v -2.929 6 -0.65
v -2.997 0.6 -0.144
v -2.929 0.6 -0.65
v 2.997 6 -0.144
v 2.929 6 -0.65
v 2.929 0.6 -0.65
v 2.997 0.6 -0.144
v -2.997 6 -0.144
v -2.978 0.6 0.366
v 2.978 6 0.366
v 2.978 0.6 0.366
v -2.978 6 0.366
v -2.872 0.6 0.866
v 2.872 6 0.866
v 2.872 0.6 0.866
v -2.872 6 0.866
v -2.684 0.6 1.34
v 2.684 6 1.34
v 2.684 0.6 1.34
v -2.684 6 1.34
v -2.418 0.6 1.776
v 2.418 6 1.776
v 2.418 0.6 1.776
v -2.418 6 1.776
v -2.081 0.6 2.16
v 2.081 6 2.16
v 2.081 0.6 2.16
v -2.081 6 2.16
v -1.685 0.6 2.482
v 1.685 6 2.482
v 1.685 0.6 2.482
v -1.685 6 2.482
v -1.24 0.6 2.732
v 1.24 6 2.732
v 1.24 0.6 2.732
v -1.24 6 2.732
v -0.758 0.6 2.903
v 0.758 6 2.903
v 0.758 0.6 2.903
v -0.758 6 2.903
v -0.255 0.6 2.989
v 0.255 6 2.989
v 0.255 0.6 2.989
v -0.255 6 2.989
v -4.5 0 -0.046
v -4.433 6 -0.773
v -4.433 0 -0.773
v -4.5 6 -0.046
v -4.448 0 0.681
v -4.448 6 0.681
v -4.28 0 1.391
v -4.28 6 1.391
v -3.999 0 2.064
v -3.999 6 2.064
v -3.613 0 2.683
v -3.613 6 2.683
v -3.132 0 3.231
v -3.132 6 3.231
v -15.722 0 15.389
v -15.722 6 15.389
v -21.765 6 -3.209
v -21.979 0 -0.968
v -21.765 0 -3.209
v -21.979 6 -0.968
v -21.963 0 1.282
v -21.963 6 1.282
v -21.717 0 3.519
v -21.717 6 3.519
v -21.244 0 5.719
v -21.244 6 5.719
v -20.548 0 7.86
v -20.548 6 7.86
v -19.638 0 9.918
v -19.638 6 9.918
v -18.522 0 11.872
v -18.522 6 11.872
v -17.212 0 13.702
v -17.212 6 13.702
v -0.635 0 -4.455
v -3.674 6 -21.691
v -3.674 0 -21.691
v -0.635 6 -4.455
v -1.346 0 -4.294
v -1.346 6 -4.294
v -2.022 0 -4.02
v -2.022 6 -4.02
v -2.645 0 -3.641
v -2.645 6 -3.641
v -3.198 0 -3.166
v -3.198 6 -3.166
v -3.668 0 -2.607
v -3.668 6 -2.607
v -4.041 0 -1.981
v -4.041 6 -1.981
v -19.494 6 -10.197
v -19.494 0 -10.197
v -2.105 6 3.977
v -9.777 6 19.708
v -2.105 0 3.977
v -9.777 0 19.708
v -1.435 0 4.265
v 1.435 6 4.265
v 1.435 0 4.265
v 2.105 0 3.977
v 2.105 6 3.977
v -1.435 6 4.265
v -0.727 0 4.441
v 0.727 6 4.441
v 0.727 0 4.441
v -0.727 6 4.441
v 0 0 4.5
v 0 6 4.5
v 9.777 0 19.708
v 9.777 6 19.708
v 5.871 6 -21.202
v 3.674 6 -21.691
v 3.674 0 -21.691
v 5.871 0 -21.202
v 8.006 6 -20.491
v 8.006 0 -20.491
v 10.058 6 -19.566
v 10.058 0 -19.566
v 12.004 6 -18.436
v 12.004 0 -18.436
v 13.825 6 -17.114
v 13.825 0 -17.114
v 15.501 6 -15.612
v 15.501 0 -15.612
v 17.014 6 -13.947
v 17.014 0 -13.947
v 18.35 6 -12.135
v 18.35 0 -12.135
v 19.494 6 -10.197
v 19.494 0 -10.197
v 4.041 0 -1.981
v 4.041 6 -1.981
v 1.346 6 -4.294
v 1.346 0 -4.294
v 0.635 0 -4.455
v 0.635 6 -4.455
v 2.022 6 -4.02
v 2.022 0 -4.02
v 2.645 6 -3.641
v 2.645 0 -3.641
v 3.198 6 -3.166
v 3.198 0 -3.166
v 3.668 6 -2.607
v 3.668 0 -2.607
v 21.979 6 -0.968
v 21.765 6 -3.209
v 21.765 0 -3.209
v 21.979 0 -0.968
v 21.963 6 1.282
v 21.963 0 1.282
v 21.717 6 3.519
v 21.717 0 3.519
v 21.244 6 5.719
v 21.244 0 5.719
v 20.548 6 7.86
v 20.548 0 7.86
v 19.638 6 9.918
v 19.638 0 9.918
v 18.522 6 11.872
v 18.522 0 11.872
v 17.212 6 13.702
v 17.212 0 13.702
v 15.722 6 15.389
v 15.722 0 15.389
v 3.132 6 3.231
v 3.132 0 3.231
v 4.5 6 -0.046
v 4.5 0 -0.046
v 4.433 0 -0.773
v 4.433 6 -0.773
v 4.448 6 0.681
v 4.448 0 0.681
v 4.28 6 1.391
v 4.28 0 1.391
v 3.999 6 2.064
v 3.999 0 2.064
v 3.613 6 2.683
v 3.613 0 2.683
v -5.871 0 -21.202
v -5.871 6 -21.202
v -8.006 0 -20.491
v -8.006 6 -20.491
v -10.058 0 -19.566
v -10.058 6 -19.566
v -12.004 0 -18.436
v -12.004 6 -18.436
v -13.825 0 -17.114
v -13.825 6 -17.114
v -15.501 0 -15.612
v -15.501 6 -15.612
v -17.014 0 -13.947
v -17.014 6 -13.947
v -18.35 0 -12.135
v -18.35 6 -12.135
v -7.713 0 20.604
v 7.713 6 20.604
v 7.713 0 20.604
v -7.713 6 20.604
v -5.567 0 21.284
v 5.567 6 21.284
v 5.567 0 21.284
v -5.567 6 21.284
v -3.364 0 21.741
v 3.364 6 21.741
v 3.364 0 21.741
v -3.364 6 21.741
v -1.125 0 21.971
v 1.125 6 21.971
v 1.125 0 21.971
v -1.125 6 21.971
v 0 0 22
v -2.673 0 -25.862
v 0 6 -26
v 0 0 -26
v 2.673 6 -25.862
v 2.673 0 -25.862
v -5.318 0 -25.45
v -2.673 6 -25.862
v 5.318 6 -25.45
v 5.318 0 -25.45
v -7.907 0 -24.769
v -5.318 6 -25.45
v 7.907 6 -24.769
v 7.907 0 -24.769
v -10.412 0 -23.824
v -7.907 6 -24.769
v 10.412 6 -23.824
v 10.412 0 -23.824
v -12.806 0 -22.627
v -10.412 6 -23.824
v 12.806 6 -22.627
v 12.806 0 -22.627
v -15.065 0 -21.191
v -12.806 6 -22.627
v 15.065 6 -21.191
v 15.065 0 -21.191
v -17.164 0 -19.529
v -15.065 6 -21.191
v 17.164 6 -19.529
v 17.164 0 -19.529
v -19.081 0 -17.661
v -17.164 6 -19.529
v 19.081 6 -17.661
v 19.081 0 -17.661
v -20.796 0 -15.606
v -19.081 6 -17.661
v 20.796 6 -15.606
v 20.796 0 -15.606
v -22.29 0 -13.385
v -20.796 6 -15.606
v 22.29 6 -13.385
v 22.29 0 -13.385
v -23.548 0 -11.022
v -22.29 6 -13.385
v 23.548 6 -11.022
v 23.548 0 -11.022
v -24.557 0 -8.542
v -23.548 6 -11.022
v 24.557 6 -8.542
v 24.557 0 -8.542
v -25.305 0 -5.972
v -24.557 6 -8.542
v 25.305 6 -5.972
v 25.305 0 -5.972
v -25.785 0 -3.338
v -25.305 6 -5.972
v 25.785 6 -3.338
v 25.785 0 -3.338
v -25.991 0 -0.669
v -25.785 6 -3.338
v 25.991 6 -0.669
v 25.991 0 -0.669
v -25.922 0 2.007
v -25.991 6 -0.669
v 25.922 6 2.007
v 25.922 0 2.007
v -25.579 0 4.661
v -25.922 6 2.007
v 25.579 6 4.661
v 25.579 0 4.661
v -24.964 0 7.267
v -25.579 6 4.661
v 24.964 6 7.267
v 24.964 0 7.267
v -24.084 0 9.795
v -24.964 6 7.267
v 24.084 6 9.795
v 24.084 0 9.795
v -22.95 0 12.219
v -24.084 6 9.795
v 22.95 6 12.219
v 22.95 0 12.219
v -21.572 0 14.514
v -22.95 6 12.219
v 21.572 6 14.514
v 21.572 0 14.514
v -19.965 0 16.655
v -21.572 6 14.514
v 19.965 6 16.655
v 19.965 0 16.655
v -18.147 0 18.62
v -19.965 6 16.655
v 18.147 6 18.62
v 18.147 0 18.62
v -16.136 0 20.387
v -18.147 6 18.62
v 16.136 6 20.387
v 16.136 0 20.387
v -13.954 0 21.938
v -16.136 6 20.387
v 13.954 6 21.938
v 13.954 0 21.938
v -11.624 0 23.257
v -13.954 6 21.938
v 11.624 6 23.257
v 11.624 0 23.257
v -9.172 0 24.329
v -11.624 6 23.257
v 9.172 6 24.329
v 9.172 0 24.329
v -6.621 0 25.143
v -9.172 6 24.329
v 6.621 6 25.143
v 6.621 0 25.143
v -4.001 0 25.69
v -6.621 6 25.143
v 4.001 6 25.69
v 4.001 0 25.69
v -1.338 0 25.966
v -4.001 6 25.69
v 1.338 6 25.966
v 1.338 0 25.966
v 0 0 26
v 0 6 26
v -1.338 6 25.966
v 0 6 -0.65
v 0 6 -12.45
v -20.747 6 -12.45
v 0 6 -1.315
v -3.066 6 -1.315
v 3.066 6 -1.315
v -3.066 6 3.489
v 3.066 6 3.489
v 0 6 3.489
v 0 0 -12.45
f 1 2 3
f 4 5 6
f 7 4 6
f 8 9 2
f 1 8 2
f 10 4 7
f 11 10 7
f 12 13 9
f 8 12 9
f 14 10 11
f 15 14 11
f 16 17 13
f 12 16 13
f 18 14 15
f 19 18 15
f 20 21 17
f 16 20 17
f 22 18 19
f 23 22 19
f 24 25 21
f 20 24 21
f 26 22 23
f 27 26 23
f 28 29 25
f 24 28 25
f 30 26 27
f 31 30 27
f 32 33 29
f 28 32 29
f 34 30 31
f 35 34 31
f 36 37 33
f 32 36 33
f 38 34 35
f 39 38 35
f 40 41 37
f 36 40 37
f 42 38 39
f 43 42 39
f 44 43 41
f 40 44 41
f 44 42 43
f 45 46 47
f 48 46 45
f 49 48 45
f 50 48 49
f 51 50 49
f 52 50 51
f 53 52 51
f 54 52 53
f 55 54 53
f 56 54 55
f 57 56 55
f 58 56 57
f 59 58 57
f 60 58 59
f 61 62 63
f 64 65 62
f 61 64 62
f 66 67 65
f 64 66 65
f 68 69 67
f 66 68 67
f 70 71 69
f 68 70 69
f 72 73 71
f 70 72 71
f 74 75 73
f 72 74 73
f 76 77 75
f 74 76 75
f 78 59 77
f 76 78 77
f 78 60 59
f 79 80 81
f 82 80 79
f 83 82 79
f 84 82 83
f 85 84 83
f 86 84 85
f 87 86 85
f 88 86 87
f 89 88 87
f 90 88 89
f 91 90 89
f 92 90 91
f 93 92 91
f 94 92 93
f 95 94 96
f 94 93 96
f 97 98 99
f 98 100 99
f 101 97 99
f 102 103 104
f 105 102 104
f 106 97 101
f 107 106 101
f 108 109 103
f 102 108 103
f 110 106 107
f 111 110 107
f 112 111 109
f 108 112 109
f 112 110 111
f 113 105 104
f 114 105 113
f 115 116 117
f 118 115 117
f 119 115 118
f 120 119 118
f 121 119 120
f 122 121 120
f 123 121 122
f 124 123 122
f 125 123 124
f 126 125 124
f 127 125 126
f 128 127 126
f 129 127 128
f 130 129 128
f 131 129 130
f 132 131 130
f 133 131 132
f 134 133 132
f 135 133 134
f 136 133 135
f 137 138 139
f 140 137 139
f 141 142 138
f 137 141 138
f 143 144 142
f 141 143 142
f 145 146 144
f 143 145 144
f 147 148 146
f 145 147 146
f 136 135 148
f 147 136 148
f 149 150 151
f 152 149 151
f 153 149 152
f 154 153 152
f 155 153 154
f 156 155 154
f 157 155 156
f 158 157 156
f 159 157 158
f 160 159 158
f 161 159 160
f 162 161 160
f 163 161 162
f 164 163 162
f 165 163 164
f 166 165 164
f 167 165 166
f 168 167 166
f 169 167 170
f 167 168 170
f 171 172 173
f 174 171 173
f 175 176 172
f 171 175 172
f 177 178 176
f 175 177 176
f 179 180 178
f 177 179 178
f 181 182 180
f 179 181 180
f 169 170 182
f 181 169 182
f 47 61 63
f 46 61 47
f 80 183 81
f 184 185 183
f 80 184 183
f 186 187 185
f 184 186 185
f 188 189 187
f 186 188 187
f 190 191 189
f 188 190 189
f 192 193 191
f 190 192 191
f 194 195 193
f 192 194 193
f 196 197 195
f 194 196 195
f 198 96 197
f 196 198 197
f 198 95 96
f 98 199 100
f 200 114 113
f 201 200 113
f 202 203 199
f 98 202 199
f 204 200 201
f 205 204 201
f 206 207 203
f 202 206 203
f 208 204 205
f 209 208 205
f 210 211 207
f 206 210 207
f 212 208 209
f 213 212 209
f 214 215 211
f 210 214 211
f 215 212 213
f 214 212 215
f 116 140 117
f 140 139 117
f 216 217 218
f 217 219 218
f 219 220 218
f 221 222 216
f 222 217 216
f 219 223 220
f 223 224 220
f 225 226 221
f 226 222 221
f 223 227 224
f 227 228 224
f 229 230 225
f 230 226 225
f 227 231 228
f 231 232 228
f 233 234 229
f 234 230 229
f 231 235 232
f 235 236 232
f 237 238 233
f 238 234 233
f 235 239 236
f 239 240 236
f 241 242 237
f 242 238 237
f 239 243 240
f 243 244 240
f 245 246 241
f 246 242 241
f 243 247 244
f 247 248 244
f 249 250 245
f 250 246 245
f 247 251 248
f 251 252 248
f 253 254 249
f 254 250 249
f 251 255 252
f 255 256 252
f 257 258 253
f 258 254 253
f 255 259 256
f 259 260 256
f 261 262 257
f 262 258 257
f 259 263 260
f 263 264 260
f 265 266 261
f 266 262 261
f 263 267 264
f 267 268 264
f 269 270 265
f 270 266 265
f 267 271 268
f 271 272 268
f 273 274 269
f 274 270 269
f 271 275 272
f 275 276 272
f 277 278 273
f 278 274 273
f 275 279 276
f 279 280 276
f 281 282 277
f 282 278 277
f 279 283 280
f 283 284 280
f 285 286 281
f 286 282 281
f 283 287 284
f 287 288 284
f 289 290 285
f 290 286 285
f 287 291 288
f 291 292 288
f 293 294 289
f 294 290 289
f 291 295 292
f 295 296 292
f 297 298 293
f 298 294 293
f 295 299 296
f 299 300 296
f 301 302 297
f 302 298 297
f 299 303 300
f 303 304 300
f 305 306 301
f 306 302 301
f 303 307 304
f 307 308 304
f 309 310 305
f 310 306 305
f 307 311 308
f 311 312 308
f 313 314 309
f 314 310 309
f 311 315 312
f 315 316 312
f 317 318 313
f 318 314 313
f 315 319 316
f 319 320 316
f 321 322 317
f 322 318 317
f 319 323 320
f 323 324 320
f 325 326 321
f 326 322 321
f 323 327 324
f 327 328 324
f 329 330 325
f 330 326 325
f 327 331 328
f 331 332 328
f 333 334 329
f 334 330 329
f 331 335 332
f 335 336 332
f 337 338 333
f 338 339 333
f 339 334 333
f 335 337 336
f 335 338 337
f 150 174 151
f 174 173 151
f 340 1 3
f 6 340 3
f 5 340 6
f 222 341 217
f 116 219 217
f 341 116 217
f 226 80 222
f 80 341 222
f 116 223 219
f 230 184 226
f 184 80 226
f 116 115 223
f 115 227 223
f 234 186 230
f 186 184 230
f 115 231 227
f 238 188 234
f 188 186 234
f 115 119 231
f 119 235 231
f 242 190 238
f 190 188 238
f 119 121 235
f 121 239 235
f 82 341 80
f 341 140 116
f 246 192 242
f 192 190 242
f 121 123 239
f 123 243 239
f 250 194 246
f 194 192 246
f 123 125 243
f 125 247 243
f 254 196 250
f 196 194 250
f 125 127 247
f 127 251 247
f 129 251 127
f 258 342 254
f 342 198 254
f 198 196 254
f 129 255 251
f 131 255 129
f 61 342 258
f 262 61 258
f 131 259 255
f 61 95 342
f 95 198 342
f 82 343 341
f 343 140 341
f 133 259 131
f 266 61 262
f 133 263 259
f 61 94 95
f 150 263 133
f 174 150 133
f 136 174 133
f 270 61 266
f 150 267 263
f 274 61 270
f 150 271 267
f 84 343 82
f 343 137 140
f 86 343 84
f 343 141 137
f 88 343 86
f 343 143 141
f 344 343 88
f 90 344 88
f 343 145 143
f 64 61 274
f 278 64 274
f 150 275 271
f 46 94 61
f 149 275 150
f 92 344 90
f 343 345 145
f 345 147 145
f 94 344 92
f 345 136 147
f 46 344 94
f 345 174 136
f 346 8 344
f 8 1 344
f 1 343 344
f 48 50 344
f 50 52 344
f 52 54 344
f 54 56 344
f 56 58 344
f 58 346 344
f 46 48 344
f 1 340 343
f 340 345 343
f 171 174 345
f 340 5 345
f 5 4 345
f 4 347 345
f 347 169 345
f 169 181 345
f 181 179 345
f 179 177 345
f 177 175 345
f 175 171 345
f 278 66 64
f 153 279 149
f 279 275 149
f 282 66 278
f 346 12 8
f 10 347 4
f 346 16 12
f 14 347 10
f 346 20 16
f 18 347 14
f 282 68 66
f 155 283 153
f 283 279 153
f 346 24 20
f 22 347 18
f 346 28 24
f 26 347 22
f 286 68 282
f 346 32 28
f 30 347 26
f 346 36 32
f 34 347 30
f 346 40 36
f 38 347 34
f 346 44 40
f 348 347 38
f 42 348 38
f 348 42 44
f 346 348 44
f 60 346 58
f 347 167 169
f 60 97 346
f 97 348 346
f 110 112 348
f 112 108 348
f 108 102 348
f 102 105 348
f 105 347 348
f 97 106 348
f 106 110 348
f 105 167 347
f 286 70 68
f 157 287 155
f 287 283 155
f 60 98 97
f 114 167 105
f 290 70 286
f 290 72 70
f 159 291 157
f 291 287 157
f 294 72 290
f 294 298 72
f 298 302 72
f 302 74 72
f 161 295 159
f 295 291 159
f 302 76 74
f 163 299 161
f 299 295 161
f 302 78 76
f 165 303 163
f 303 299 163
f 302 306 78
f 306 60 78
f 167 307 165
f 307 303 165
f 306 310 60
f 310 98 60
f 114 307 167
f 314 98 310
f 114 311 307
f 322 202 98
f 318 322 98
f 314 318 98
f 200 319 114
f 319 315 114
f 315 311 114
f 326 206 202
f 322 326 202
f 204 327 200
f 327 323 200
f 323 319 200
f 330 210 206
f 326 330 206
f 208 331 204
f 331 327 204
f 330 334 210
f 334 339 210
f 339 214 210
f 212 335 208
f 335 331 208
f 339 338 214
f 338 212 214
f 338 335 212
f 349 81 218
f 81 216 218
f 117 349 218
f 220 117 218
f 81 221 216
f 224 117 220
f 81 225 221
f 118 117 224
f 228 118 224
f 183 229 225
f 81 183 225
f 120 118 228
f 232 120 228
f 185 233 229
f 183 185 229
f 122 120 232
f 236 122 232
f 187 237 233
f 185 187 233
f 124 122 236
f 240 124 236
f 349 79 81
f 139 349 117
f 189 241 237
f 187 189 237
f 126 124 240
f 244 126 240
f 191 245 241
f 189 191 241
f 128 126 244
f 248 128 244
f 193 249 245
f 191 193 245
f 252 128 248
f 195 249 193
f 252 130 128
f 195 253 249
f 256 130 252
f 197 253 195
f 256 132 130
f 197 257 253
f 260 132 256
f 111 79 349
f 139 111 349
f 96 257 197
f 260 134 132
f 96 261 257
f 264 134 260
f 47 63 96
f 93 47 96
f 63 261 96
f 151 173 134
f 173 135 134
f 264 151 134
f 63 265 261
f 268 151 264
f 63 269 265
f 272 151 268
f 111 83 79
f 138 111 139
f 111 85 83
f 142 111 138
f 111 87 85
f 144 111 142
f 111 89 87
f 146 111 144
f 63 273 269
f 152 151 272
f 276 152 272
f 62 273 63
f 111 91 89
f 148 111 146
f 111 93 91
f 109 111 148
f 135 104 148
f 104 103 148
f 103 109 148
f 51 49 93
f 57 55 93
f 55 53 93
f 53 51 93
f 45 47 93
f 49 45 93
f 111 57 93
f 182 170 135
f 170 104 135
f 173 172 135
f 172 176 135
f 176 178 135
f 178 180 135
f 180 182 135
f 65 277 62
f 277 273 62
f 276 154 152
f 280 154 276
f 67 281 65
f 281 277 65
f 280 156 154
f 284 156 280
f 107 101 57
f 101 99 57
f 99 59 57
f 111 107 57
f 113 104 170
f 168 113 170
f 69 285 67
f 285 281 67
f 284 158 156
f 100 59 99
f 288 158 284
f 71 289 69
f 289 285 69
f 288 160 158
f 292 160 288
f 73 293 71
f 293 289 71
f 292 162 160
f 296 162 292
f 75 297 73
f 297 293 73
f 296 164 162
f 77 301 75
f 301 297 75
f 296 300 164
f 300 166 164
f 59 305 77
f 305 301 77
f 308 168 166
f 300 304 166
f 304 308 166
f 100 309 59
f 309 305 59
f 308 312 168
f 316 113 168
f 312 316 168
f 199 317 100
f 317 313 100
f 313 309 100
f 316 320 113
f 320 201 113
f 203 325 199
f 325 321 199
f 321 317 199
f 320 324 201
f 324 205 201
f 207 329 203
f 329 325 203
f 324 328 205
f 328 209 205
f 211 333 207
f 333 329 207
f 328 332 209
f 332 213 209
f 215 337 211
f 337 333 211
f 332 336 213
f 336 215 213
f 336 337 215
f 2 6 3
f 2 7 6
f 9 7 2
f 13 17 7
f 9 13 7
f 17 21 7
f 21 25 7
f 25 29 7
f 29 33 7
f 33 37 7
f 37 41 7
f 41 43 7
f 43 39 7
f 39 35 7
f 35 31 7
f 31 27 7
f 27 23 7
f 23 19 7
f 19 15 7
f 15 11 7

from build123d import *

# Parameters (mm, degrees)
SKETCH1_R           = 26
BOSS_EXTRUDE1_DEPTH = 6
SKETCH1_4_R         = 3
BOSS_EXTRUDE2_DEPTH = 0.6


with BuildPart() as part:
    # Sketch1 → Boss-Extrude1 (new body)
    with BuildSketch(Plane(origin=(0, 0, 0), x_dir=(1, 0, 0), z_dir=(0, 1, 0))):
        Circle(SKETCH1_R)
        with BuildLine():
            Line((-2.928736929, 0.65), (2.928736929, 0.65))
            ThreePointArc((2.928736929, 0.65), (0, -3), (-2.928736929, 0.65))
        make_face(mode=Mode.SUBTRACT)
        with BuildLine():
            ThreePointArc((4.040704303, 1.980582927), (2.645033635, 3.640576475), (0.635, 4.454971942))
            Line((0.635, 4.454971942), (3.674180512, 21.691021128))
            ThreePointArc((3.674180512, 21.691021128), (12.93127555, 17.798373876), (19.49400277, 10.197247472))
            Line((19.49400277, 10.197247472), (4.040704303, 1.980582927))
        make_face(mode=Mode.SUBTRACT)
        with BuildLine():
            Line((4.433155886, 0.772741152), (21.764771207, 3.208540836))
            ThreePointArc((21.764771207, 3.208540836), (20.923243358, -6.798373876), (15.722136801, -15.388775598))
            Line((15.722136801, -15.388775598), (3.132292598, -3.230904375))
            ThreePointArc((3.132292598, -3.230904375), (4.279754323, -1.390576475), (4.433155886, 0.772741152))
        make_face(mode=Mode.SUBTRACT)
        with BuildLine():
            ThreePointArc((-2.104841015, -3.977391645), (0, -4.5), (2.104841015, -3.977391645))
            Line((2.104841015, -3.977391645), (9.777187851, -19.708033837))
            ThreePointArc((9.777187851, -19.708033837), (0, -22), (-9.777187851, -19.708033837))
            Line((-9.777187851, -19.708033837), (-2.104841015, -3.977391645))
        make_face(mode=Mode.SUBTRACT)
        with BuildLine():
            ThreePointArc((-4.433155886, 0.772741152), (-4.279754323, -1.390576475), (-3.132292598, -3.230904375))
            Line((-3.132292598, -3.230904375), (-15.722136801, -15.388775598))
            ThreePointArc((-15.722136801, -15.388775598), (-20.923243358, -6.798373876), (-21.764771207, 3.208540836))
            Line((-21.764771207, 3.208540836), (-4.433155886, 0.772741152))
        make_face(mode=Mode.SUBTRACT)
        with BuildLine():
            ThreePointArc((-0.635, 4.454971942), (-2.645033635, 3.640576475), (-4.040704303, 1.980582927))
            Line((-4.040704303, 1.980582927), (-19.49400277, 10.197247472))
            ThreePointArc((-19.49400277, 10.197247472), (-12.93127555, 17.798373876), (-3.674180512, 21.691021128))
            Line((-3.674180512, 21.691021128), (-0.635, 4.454971942))
        make_face(mode=Mode.SUBTRACT)
    extrude(amount=BOSS_EXTRUDE1_DEPTH)

    # Sketch1<4> → Boss-Extrude2 (add)
    with BuildSketch(Plane(origin=(0, 0, 0), x_dir=(1, 0, 0), z_dir=(0, 1, 0))):
        Circle(SKETCH1_4_R)
    extrude(amount=BOSS_EXTRUDE2_DEPTH)


solid = part.part
